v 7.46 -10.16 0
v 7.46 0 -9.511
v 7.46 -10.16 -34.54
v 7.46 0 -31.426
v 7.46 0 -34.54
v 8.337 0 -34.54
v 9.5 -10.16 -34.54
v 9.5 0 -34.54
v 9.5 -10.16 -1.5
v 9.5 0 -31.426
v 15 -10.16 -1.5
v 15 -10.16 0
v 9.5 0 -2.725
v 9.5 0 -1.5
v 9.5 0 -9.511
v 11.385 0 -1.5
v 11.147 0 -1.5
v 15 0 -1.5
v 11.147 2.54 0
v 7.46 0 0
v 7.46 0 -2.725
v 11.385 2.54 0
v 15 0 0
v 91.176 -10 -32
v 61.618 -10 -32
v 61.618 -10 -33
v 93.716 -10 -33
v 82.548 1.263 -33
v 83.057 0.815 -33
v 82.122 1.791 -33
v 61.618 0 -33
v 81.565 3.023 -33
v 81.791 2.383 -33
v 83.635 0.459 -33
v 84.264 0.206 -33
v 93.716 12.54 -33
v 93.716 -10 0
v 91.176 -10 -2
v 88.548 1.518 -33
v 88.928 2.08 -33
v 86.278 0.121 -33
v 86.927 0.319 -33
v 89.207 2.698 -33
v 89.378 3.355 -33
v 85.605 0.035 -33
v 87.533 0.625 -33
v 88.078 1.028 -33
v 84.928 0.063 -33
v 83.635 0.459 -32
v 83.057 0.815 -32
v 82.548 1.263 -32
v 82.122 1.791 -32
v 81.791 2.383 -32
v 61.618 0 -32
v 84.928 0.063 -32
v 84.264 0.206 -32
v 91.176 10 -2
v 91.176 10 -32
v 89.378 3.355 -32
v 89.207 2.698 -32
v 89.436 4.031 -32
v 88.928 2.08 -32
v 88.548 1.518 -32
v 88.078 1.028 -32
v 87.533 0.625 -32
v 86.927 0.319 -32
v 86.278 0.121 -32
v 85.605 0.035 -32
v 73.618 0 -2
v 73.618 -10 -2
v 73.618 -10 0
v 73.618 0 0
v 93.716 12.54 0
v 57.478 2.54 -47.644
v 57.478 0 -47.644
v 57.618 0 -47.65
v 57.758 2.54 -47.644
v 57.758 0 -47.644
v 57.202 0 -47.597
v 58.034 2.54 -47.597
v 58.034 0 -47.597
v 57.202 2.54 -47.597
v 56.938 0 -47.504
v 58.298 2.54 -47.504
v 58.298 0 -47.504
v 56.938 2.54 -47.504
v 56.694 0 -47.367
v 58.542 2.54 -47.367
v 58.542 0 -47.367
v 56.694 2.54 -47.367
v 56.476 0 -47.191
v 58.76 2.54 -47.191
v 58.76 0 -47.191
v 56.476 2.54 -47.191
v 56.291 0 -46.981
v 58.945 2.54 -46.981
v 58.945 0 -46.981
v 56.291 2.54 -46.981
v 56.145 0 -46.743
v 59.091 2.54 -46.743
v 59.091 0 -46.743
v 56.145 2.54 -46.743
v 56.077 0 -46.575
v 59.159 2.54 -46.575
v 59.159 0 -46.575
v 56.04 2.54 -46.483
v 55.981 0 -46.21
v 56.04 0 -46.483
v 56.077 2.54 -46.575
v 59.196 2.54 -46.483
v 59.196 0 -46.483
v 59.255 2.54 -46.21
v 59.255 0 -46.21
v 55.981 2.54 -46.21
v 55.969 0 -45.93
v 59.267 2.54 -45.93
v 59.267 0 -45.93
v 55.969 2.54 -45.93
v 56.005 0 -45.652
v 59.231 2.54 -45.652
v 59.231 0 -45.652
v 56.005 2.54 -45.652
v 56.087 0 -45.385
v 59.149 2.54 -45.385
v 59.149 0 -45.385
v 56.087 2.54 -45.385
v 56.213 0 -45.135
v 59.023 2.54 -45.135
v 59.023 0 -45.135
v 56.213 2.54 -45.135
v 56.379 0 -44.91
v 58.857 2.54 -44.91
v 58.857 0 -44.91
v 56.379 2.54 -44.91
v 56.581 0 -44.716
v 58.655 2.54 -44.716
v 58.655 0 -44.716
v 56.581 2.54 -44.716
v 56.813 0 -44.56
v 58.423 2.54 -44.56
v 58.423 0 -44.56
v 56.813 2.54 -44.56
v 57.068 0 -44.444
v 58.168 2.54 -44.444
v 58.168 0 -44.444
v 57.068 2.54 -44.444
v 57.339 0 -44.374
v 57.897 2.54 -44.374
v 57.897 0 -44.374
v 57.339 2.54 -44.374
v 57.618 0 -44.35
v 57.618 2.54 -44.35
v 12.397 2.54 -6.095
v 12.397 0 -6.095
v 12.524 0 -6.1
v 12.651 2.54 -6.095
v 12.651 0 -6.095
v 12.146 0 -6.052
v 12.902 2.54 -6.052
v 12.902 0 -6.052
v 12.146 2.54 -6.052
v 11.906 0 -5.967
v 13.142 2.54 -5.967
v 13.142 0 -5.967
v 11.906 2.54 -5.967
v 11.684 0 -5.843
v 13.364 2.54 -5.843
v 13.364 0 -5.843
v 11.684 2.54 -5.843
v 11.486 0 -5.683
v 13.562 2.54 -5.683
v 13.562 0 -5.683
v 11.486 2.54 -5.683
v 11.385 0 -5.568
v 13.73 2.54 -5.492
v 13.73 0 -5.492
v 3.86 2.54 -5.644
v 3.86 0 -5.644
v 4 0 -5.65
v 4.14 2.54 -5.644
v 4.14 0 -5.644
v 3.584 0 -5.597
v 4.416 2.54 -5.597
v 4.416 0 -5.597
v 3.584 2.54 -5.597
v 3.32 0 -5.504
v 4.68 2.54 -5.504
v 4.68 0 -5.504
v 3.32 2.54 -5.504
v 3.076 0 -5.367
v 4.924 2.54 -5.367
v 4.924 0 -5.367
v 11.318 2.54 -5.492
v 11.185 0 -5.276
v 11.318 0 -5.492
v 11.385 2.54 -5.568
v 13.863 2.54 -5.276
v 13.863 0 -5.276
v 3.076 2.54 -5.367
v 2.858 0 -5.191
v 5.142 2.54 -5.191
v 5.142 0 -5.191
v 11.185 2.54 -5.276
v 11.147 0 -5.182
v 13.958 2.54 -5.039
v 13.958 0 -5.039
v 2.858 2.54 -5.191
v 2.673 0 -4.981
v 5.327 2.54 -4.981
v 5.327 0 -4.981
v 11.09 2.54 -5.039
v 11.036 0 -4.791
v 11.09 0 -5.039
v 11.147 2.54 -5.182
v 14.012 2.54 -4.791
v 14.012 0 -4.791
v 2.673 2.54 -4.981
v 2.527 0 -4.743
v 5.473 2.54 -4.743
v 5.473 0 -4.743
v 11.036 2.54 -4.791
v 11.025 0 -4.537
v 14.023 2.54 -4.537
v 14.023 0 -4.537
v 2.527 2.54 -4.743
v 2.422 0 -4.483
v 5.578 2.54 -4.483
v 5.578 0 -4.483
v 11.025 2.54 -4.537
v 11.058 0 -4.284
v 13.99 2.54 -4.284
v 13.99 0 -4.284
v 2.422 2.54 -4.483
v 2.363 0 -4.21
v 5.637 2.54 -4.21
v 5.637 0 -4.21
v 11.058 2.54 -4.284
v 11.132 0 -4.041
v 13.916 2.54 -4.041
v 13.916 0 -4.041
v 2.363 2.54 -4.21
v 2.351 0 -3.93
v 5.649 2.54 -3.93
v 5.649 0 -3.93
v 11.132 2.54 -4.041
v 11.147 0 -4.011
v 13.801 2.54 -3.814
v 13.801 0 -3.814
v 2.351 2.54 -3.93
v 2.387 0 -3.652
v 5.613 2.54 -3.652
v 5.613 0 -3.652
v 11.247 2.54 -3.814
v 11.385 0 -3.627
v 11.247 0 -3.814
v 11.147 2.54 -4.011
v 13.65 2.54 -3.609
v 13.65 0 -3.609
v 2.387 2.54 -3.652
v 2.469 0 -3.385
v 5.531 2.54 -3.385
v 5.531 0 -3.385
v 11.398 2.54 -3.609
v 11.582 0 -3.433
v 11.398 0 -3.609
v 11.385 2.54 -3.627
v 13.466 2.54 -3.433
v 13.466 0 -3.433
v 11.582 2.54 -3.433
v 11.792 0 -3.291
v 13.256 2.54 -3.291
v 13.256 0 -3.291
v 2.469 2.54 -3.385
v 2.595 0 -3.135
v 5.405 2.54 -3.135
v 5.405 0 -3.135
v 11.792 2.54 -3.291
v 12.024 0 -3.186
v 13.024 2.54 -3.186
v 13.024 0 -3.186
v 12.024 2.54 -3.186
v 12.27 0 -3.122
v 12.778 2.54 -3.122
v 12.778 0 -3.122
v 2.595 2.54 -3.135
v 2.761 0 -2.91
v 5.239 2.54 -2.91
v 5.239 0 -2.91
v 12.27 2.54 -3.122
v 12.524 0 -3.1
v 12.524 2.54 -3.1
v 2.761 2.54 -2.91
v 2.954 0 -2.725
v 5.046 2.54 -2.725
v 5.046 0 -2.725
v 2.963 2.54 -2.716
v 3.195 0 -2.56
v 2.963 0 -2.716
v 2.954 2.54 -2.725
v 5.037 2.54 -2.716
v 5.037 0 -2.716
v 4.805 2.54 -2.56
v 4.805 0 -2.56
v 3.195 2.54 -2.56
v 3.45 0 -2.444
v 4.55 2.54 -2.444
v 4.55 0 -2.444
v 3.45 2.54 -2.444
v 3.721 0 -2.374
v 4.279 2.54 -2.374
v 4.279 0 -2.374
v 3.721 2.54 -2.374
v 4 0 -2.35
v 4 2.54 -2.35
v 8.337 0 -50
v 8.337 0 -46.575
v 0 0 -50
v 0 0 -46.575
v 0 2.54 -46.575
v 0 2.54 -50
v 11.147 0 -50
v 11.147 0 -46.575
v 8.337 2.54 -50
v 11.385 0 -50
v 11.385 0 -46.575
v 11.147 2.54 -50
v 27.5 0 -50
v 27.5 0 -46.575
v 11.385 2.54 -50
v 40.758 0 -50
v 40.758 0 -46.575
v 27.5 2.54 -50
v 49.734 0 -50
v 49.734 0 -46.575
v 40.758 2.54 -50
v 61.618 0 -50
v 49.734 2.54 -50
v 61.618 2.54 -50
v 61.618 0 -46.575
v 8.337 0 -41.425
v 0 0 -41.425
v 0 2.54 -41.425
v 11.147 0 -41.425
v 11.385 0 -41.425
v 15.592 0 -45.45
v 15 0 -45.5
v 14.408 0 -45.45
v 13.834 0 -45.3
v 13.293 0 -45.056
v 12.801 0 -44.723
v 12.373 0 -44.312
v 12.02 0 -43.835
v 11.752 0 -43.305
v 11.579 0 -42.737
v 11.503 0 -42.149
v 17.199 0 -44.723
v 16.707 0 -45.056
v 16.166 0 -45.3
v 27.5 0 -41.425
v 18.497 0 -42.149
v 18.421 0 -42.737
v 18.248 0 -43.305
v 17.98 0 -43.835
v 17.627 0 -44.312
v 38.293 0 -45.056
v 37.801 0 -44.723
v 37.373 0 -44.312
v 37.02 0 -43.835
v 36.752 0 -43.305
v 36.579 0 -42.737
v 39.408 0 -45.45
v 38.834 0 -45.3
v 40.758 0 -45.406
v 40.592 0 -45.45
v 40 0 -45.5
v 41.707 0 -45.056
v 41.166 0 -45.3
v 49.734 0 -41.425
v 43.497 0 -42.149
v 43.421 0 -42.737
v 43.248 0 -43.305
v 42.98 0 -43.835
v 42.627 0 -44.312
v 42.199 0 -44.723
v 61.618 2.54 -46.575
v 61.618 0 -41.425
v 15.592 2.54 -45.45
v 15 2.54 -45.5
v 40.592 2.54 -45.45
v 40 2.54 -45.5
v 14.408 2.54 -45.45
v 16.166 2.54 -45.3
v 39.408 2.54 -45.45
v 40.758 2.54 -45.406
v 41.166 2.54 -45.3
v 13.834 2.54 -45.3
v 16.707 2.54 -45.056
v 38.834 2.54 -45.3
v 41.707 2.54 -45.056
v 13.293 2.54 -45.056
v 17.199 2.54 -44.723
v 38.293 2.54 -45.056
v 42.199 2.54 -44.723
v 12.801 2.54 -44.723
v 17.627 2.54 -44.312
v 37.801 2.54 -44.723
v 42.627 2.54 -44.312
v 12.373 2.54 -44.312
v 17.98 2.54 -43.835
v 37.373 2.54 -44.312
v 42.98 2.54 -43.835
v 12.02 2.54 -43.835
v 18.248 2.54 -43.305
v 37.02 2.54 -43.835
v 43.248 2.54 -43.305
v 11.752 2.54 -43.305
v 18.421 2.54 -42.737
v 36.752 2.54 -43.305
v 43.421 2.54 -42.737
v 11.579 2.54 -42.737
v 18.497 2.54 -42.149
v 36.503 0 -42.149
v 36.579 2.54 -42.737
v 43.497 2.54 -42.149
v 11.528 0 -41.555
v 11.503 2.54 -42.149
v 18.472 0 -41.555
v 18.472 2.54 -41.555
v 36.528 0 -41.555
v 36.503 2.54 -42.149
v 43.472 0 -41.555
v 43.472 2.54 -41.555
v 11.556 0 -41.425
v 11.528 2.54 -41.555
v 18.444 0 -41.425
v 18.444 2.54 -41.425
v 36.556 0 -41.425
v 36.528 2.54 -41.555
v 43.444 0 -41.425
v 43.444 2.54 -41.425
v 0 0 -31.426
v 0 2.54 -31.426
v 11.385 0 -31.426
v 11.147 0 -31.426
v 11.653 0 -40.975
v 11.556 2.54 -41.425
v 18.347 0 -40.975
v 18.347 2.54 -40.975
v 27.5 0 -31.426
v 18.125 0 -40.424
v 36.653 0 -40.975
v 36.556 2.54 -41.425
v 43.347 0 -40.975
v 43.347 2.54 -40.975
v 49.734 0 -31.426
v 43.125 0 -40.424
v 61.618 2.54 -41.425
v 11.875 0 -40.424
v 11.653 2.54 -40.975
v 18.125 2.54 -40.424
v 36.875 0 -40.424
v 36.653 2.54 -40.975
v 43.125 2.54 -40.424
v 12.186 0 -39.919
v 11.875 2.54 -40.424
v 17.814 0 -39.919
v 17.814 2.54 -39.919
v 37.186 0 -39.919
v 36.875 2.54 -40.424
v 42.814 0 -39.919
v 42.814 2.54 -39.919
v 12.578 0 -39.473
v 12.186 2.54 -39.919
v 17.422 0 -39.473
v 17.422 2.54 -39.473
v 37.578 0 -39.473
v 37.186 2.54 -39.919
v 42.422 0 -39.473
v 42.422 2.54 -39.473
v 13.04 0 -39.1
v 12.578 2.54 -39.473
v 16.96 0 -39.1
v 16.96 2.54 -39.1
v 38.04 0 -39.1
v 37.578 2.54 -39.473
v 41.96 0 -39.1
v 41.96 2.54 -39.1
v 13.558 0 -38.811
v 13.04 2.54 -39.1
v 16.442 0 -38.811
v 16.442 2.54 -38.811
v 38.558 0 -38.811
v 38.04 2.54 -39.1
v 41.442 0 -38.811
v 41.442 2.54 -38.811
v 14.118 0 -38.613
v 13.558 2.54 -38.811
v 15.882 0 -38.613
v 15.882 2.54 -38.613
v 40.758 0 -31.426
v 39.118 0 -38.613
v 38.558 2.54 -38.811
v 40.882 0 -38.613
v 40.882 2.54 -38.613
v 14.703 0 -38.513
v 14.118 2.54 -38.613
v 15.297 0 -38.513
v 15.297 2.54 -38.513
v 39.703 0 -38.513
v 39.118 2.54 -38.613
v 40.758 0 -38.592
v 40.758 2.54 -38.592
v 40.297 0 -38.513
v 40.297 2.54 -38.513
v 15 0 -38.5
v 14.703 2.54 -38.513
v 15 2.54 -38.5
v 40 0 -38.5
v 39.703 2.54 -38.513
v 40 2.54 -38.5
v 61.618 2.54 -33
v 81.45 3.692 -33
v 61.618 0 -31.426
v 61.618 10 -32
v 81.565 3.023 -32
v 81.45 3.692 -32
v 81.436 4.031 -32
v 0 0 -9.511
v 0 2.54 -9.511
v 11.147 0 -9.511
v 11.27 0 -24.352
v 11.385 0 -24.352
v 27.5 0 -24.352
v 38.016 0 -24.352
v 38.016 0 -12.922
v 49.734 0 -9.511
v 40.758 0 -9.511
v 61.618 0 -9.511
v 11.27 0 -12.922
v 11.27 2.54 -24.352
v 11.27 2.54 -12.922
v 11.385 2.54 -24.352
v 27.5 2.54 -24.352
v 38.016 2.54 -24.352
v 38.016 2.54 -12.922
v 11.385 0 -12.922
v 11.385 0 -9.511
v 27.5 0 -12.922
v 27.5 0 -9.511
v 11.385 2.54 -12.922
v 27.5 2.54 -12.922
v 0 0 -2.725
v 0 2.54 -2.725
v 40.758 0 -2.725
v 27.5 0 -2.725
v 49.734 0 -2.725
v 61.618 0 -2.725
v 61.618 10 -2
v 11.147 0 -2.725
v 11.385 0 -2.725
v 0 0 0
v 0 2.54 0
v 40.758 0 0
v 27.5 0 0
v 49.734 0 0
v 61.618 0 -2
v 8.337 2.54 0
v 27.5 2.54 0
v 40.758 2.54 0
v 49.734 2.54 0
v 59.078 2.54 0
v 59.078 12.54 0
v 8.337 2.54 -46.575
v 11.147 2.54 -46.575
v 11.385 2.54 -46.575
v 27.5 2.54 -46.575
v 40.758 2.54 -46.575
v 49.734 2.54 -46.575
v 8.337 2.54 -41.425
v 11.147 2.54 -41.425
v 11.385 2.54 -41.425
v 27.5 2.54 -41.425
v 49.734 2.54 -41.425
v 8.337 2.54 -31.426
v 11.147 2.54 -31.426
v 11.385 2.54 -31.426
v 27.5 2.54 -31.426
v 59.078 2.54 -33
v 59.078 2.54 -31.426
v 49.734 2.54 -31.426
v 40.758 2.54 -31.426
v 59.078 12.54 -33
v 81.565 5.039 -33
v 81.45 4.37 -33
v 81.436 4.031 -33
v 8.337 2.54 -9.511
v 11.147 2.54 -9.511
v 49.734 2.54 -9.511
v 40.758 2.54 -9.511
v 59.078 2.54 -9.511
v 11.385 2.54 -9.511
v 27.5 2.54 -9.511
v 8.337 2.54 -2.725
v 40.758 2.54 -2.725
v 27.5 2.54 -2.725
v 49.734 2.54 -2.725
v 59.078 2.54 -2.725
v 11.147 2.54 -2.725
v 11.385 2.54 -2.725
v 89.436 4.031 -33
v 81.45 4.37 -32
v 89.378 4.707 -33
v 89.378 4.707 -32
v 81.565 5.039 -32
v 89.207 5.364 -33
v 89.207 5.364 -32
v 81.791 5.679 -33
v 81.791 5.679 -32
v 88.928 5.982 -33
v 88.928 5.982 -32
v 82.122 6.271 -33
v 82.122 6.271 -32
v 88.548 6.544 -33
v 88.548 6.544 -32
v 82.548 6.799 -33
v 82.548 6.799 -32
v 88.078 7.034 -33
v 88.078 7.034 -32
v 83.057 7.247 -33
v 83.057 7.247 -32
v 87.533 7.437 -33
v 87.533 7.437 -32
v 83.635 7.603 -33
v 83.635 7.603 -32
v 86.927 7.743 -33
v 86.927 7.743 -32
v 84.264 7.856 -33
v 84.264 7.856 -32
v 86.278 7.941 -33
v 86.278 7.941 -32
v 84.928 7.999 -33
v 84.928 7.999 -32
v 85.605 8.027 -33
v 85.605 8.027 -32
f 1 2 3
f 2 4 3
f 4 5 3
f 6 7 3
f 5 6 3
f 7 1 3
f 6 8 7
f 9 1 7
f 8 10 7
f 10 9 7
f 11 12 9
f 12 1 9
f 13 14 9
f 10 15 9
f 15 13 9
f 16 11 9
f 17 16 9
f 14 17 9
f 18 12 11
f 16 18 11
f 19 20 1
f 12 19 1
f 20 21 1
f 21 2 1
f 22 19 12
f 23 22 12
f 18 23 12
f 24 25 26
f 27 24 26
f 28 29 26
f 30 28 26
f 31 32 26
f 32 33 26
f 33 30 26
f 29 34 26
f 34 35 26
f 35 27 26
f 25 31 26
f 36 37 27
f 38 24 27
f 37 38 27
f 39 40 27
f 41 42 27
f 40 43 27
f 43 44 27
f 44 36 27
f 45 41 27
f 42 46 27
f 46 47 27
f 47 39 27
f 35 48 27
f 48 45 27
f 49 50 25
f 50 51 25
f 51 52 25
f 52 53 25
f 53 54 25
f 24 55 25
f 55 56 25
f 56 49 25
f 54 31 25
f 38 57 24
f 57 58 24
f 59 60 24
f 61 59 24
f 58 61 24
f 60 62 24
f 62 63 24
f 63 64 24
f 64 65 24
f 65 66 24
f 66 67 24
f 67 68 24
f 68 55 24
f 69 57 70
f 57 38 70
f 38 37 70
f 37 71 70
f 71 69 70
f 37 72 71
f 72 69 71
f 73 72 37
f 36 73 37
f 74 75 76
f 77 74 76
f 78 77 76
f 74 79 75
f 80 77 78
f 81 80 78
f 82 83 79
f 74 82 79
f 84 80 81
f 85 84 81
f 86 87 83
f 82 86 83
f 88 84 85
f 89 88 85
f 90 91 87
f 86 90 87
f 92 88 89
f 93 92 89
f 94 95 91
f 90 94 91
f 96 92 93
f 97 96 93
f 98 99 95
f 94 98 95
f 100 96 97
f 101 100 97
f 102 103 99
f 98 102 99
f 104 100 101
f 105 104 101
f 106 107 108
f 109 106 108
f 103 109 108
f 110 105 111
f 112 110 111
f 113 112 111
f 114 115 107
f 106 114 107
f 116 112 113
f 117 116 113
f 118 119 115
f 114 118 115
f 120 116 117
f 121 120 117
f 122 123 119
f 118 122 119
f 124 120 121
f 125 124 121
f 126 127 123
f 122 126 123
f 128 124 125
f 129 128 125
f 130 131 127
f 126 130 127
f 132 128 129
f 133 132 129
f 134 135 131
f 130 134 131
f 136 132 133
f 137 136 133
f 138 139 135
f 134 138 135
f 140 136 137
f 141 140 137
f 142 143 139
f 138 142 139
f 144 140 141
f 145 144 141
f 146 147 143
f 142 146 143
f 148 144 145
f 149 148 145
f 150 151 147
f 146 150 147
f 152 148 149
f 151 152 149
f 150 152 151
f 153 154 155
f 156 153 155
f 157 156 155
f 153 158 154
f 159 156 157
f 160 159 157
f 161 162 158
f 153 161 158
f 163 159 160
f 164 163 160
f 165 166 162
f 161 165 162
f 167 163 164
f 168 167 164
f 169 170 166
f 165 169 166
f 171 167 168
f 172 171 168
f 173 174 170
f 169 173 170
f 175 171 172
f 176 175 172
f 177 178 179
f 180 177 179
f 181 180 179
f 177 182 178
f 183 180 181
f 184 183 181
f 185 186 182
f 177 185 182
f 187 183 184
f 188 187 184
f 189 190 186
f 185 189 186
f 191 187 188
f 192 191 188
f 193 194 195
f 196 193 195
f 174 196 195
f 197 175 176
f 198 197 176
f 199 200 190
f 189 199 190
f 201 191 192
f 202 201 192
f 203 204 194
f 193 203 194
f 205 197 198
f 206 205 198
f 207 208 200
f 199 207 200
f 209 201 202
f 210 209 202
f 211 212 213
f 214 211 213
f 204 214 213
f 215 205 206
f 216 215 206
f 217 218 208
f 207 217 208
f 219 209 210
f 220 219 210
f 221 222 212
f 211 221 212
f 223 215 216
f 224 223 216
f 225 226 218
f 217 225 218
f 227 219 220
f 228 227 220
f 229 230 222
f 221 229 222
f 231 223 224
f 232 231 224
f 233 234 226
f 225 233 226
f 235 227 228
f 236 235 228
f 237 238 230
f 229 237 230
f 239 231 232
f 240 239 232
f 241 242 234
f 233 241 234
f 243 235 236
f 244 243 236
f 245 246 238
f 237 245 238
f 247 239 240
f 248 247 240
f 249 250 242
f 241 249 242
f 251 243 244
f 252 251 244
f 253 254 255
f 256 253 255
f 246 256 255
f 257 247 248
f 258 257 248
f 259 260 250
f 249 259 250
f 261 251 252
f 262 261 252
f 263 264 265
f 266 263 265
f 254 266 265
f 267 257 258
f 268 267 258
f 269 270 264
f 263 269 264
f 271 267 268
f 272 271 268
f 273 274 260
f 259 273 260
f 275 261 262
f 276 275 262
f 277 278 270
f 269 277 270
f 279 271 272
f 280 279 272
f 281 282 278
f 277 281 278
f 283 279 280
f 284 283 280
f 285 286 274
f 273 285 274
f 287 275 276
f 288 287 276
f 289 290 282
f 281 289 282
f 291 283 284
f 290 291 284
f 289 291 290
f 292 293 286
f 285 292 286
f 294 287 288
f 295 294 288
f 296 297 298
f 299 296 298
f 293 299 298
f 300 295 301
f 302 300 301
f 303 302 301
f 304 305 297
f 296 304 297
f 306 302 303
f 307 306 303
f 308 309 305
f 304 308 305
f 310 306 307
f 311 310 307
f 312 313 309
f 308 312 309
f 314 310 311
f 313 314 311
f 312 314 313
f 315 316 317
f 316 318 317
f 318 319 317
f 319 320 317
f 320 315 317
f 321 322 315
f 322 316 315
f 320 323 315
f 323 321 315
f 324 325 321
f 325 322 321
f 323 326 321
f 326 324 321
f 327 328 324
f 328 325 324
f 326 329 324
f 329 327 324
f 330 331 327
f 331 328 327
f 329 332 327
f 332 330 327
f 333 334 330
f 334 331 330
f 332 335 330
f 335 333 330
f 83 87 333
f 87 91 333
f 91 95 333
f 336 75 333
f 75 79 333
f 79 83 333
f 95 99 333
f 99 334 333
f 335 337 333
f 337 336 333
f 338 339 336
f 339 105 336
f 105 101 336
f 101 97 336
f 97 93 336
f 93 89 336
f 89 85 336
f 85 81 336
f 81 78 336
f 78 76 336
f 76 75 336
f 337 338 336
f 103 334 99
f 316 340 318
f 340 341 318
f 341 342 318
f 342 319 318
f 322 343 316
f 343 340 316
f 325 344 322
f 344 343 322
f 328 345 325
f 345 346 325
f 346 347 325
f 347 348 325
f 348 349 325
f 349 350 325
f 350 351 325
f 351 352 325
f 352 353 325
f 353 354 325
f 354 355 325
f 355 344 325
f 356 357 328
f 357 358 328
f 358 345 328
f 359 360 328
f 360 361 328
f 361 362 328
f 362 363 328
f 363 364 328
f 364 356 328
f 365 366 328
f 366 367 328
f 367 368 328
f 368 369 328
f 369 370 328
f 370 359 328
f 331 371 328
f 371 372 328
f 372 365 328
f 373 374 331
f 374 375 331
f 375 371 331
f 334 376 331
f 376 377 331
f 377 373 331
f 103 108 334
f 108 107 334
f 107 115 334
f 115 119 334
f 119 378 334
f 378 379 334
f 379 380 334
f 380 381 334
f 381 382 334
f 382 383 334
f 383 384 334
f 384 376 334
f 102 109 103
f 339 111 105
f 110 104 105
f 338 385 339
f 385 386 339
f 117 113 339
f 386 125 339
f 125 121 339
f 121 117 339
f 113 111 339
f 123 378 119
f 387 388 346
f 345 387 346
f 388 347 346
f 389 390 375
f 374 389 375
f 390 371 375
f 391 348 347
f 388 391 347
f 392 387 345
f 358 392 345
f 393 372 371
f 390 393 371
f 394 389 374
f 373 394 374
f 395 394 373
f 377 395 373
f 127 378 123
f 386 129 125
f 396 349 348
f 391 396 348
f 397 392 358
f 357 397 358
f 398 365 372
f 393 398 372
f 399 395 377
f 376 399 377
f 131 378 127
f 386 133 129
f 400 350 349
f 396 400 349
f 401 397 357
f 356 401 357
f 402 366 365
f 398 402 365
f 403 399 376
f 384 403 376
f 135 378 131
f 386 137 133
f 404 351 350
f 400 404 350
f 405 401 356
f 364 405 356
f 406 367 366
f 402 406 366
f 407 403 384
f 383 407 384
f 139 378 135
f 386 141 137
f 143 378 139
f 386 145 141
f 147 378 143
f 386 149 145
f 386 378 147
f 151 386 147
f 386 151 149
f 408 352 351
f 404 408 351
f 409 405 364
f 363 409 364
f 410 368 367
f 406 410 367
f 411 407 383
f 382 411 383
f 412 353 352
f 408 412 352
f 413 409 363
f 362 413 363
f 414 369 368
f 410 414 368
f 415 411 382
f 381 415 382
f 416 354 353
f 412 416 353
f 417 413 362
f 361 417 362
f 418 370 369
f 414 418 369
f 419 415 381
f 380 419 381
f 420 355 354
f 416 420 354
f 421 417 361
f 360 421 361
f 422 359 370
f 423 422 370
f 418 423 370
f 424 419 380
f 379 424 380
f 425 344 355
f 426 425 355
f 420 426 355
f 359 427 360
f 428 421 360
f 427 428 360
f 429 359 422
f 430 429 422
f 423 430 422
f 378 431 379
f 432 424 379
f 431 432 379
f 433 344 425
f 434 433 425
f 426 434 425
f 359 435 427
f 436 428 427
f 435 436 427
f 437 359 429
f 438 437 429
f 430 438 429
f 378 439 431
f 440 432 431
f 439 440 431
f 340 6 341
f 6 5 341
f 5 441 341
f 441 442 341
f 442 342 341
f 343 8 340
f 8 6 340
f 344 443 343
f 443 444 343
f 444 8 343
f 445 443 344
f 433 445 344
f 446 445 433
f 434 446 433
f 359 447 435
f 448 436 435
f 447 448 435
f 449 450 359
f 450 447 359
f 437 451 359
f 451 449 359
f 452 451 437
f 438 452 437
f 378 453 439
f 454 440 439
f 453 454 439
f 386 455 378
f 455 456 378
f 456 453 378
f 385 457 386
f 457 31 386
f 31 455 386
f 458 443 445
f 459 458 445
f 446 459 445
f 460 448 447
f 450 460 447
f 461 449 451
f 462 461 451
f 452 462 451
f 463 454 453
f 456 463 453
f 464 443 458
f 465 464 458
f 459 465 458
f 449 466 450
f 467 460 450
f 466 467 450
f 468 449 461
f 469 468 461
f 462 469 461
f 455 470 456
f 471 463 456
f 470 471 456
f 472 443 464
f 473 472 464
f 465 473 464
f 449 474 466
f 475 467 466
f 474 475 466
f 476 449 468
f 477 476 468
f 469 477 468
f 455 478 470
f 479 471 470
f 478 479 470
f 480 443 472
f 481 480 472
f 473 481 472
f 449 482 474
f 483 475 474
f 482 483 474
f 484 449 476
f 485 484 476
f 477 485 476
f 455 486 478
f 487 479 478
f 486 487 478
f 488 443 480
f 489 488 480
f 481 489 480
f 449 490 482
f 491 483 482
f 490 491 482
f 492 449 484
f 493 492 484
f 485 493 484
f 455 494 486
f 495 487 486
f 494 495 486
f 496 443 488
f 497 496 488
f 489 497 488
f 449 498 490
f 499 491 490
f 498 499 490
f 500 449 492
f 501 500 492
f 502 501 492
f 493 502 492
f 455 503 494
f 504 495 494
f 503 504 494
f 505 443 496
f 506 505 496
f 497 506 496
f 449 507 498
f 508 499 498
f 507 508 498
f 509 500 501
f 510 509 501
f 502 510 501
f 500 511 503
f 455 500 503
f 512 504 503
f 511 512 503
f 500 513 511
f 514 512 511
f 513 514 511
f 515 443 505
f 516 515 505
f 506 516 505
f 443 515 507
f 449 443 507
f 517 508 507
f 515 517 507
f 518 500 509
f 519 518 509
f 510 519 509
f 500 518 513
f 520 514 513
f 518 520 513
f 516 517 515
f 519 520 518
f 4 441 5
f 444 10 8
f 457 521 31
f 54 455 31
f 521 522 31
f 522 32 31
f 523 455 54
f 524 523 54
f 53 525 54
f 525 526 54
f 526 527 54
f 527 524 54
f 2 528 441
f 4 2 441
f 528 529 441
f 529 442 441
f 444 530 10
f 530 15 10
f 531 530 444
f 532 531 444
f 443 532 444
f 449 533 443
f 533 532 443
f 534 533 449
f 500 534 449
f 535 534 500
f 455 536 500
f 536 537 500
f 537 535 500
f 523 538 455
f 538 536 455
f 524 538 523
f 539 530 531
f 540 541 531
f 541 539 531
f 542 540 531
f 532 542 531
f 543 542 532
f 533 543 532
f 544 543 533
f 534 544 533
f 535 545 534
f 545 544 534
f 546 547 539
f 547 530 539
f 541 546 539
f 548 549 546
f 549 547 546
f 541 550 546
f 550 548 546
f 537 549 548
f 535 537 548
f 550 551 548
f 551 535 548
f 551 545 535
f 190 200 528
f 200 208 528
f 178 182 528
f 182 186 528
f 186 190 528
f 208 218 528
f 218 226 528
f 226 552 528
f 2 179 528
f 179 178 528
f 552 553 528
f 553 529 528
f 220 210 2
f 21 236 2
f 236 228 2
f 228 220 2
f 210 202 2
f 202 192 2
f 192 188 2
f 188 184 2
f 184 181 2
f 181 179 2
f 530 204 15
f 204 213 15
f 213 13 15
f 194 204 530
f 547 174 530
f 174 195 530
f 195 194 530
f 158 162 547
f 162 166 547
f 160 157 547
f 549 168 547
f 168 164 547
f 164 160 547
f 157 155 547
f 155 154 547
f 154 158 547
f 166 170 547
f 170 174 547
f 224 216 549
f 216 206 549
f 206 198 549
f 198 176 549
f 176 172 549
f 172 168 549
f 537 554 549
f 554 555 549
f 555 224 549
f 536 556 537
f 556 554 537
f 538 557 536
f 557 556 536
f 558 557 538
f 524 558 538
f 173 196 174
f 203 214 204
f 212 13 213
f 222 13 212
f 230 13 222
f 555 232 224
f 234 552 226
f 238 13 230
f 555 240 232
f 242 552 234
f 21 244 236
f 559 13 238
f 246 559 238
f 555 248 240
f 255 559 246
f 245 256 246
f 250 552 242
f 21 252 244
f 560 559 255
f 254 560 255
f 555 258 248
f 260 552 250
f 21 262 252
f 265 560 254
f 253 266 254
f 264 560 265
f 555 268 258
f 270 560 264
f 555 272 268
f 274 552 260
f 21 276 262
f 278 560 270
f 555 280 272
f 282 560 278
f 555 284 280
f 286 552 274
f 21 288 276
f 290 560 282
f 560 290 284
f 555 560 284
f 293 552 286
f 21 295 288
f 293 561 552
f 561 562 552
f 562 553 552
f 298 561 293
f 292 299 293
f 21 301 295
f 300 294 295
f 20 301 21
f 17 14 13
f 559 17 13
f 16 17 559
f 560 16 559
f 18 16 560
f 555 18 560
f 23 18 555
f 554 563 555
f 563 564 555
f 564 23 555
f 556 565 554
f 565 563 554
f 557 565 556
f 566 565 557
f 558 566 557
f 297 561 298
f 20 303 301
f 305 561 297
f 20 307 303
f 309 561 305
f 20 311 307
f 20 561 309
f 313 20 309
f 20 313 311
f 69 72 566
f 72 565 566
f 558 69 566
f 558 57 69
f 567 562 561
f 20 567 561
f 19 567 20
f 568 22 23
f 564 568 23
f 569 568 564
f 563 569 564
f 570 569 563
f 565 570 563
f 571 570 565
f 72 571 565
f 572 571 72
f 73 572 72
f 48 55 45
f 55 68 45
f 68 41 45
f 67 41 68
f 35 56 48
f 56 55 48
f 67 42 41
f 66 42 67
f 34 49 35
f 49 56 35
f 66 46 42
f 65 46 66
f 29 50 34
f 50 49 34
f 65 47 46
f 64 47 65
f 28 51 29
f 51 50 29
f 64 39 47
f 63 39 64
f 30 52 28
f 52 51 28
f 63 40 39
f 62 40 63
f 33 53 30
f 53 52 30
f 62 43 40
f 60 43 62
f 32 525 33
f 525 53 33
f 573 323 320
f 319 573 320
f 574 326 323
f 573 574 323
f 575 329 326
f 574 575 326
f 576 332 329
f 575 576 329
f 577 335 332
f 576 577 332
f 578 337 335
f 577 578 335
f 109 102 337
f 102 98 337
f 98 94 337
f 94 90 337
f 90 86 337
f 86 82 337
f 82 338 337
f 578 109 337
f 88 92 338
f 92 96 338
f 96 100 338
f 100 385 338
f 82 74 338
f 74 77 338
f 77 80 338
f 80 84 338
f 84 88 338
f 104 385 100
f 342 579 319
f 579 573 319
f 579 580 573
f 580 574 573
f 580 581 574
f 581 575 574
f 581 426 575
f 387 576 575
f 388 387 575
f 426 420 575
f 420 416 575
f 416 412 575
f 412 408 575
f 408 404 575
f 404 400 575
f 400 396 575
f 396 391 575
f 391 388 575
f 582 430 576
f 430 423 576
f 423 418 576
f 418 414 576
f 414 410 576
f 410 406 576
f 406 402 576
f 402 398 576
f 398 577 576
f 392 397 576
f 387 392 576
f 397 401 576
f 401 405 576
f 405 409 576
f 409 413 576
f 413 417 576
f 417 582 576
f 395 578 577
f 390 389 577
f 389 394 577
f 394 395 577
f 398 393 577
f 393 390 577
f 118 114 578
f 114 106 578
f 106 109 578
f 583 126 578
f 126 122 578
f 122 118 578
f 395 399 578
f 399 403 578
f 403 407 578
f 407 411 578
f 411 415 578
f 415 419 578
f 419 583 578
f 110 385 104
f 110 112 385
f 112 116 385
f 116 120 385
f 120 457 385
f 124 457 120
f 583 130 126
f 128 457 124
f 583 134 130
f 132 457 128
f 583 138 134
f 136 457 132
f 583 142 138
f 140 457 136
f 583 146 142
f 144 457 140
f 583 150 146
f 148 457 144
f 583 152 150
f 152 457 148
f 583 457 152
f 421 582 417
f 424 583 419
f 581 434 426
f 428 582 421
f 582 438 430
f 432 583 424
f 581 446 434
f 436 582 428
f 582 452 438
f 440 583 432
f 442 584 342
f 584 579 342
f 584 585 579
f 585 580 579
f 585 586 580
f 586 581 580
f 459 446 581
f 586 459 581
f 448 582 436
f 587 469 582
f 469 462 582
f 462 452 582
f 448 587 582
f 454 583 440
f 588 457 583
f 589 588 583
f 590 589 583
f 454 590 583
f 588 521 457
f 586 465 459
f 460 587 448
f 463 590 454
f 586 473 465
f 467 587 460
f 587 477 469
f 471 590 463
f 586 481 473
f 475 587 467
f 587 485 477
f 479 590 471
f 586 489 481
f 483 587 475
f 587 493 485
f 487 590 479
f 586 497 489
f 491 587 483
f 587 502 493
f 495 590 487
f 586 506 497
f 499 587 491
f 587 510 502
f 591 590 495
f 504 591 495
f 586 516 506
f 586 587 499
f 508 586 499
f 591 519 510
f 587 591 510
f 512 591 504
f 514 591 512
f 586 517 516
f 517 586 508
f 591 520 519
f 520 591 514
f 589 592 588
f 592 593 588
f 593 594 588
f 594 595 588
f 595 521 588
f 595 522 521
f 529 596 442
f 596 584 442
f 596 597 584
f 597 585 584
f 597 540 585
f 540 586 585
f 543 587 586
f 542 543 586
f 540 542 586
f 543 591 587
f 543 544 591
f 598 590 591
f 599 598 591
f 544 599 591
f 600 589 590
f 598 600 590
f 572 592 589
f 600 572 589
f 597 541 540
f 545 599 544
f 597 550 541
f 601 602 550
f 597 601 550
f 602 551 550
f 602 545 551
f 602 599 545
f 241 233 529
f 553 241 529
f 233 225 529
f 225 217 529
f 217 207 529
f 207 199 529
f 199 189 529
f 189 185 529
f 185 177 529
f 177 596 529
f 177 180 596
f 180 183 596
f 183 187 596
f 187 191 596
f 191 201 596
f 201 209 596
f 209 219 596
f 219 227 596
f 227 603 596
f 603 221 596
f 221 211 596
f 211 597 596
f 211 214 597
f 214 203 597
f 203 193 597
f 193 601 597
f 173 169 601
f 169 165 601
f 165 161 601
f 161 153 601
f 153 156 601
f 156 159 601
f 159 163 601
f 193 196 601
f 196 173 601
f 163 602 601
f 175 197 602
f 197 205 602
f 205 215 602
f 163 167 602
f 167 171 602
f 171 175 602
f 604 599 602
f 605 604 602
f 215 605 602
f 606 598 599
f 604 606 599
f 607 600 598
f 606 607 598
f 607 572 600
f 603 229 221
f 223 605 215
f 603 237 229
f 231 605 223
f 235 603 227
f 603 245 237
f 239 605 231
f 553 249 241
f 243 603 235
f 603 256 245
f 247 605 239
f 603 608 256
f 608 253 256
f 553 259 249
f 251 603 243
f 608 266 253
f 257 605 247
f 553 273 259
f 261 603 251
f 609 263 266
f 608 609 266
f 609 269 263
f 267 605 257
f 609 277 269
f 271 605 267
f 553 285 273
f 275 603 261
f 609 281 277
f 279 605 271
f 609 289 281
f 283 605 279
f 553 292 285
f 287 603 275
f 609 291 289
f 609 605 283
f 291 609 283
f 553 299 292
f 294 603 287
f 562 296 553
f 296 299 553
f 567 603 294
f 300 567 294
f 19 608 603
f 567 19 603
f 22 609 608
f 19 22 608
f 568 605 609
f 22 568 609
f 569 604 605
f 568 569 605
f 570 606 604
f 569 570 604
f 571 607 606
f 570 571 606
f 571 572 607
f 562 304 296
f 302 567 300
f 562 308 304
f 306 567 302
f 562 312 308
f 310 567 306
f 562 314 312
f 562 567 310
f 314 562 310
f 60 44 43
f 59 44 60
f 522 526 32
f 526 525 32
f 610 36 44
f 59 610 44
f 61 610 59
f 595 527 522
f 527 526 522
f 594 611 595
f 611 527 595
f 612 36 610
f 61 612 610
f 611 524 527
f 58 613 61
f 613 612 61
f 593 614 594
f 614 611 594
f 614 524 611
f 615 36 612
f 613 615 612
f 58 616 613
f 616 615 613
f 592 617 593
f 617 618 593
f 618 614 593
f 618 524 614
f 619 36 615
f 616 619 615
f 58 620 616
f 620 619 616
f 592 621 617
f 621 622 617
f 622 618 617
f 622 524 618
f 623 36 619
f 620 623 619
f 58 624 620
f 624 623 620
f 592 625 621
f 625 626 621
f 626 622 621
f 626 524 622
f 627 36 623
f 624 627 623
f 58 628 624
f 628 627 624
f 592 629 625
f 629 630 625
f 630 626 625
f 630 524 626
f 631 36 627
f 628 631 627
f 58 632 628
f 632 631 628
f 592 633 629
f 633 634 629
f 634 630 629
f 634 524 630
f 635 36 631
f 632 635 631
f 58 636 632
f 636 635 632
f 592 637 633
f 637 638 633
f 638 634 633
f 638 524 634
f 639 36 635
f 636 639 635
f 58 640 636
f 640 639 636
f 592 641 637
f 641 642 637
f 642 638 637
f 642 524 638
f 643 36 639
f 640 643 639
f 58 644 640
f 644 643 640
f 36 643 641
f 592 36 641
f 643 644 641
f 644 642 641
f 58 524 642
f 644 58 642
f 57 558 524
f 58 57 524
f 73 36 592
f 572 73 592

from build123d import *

# Parameters (mm, degrees)
SKETCH1_W           = 61.618
SKETCH1_H           = 50
SKETCH1_R           = 3.5
SKETCH1_R_2         = 1
SKETCH1_W_2         = 30.0482
SKETCH1_H_2         = 11.43
BOSS_EXTRUDE1_DEPTH = 2.54
BOSS_EXTRUDE2_DEPTH = 10.16
BOSS_EXTRUDE3_START = -32
BOSS_EXTRUDE3_DEPTH = 32
SKETCH5_W           = 29.558
SKETCH5_H           = 10
BOSS_EXTRUDE4_DEPTH = 2
SKETCH9_W           = 8.561459742
SKETCH9_H           = 33.54
CUT_EXTRUDE1_DEPTH  = 10.16
SKETCH10_R          = 1.65
SKETCH10_R_2        = 1.5
CUT_EXTRUDE2_DEPTH  = 107.976533202
BOSS_EXTRUDE7_DEPTH = 10
SKETCH12_R          = 4
BOSS_EXTRUDE8_DEPTH = 1
SKETCH13_W          = 12
SKETCH13_H          = 10
CUT_EXTRUDE3_DEPTH  = 10
SKETCH14_W          = 3.302
SKETCH14_H          = 11.43
BOSS_EXTRUDE9_DEPTH = 2.54


with BuildPart() as part:
    # Sketch1 → Boss-Extrude1 (new body)
    with BuildSketch(Plane(origin=(0, 0, 0), x_dir=(1, 0, 0), z_dir=(0, 1, 0))):
        with Locations((30.809, 25)):
            Rectangle(SKETCH1_W, SKETCH1_H)
        with Locations(Location((15, 42, 0), (0, 0, 270))):
            Circle(SKETCH1_R, mode=Mode.SUBTRACT)
        with Locations(Location((40, 42, 0), (0, 0, 270))):
            Circle(SKETCH1_R, mode=Mode.SUBTRACT)
        with Locations(Location((12.524, 4.6002, 0), (0, 0, 270))):
            Circle(SKETCH1_R_2, mode=Mode.SUBTRACT)
        with Locations((26.2941, 18.637)):
            Rectangle(SKETCH1_W_2, SKETCH1_H_2, mode=Mode.SUBTRACT)
    extrude(amount=BOSS_EXTRUDE1_DEPTH)

    # Sketch3 → Boss-Extrude2 (add)
    with BuildSketch(Plane.XZ):
        Polygon((10, -32), (10, -2), (15, -2), (15, 0), (7.46, 0), (7.46, -34.54), (10, -34.54), align=None)
    extrude(amount=BOSS_EXTRUDE2_DEPTH)

    # Sketch4 → Boss-Extrude3 (add)
    with BuildSketch(Plane.XY.offset(BOSS_EXTRUDE3_START)):
        Polygon((59.078, 0), (59.078, 12.54), (93.716, 12.54), (93.716, 0), (91.176, 0), (91.176, 10), (61.618, 10), (61.618, 0), align=None)
    extrude(amount=BOSS_EXTRUDE3_DEPTH)

    # Sketch5 → Boss-Extrude4 (add)
    with BuildSketch(Plane.XY):
        with Locations((76.397, 5)):
            Rectangle(SKETCH5_W, SKETCH5_H)
    extrude(amount=-BOSS_EXTRUDE4_DEPTH)

    # Sketch9 → Cut-Extrude1 (cut)
    with BuildSketch(Plane.XZ.offset(10.16)):
        with Locations((13.780729871, -18.27)):
            Rectangle(SKETCH9_W, SKETCH9_H)
    extrude(amount=-CUT_EXTRUDE1_DEPTH, mode=Mode.SUBTRACT)

    # Sketch10 → Cut-Extrude2 (cut, through all)
    with BuildSketch(Plane(origin=(0, 2.54, 0), x_dir=(1, 0, 0), z_dir=(0, 1, 0))):
        with Locations(Location((57.618, 46, 0), (0, 0, 270))):
            Circle(SKETCH10_R)
        with Locations(Location((4, 4, 0), (0, 0, 270))):
            Circle(SKETCH10_R)
        with Locations(Location((12.524, 4.6002, 0), (0, 0, 270))):
            Circle(SKETCH10_R_2)
    extrude(amount=-CUT_EXTRUDE2_DEPTH, mode=Mode.SUBTRACT)

    # Sketch11 → Boss-Extrude7 (add)
    with BuildSketch(Plane.XZ):
        Polygon((91.176, -32), (93.716, -32), (93.716, 0), (61.618, 0), (61.618, -2), (91.176, -2), align=None)
    extrude(amount=BOSS_EXTRUDE7_DEPTH)

    # Sketch12 → Boss-Extrude8 (add)
    with BuildSketch(Plane(origin=(0, 0, -32), x_dir=(-1, 0, 0), z_dir=(0, 0, -1))):
        Polygon((-59.078, 2.54), (-61.618, 2.54), (-61.618, -10), (-93.716, -10), (-93.716, 12.54), (-59.078, 12.54), align=None)
        with Locations((-85.4356, 4.031)):
            Circle(SKETCH12_R, mode=Mode.SUBTRACT)
    extrude(amount=BOSS_EXTRUDE8_DEPTH)

    # Sketch13 → Cut-Extrude3 (cut)
    with BuildSketch(Plane.XY):
        with Locations((67.618, -5)):
            Rectangle(SKETCH13_W, SKETCH13_H)
    extrude(amount=-CUT_EXTRUDE3_DEPTH, mode=Mode.SUBTRACT)

    # Sketch14 → Boss-Extrude9 (add)
    with BuildSketch(Plane(origin=(0, 2.54, 0), x_dir=(1, 0, 0), z_dir=(0, 1, 0))):
        with Locations((39.6672, 18.637)):
            Rectangle(SKETCH14_W, SKETCH14_H)
    extrude(amount=-BOSS_EXTRUDE9_DEPTH)


solid = part.part
